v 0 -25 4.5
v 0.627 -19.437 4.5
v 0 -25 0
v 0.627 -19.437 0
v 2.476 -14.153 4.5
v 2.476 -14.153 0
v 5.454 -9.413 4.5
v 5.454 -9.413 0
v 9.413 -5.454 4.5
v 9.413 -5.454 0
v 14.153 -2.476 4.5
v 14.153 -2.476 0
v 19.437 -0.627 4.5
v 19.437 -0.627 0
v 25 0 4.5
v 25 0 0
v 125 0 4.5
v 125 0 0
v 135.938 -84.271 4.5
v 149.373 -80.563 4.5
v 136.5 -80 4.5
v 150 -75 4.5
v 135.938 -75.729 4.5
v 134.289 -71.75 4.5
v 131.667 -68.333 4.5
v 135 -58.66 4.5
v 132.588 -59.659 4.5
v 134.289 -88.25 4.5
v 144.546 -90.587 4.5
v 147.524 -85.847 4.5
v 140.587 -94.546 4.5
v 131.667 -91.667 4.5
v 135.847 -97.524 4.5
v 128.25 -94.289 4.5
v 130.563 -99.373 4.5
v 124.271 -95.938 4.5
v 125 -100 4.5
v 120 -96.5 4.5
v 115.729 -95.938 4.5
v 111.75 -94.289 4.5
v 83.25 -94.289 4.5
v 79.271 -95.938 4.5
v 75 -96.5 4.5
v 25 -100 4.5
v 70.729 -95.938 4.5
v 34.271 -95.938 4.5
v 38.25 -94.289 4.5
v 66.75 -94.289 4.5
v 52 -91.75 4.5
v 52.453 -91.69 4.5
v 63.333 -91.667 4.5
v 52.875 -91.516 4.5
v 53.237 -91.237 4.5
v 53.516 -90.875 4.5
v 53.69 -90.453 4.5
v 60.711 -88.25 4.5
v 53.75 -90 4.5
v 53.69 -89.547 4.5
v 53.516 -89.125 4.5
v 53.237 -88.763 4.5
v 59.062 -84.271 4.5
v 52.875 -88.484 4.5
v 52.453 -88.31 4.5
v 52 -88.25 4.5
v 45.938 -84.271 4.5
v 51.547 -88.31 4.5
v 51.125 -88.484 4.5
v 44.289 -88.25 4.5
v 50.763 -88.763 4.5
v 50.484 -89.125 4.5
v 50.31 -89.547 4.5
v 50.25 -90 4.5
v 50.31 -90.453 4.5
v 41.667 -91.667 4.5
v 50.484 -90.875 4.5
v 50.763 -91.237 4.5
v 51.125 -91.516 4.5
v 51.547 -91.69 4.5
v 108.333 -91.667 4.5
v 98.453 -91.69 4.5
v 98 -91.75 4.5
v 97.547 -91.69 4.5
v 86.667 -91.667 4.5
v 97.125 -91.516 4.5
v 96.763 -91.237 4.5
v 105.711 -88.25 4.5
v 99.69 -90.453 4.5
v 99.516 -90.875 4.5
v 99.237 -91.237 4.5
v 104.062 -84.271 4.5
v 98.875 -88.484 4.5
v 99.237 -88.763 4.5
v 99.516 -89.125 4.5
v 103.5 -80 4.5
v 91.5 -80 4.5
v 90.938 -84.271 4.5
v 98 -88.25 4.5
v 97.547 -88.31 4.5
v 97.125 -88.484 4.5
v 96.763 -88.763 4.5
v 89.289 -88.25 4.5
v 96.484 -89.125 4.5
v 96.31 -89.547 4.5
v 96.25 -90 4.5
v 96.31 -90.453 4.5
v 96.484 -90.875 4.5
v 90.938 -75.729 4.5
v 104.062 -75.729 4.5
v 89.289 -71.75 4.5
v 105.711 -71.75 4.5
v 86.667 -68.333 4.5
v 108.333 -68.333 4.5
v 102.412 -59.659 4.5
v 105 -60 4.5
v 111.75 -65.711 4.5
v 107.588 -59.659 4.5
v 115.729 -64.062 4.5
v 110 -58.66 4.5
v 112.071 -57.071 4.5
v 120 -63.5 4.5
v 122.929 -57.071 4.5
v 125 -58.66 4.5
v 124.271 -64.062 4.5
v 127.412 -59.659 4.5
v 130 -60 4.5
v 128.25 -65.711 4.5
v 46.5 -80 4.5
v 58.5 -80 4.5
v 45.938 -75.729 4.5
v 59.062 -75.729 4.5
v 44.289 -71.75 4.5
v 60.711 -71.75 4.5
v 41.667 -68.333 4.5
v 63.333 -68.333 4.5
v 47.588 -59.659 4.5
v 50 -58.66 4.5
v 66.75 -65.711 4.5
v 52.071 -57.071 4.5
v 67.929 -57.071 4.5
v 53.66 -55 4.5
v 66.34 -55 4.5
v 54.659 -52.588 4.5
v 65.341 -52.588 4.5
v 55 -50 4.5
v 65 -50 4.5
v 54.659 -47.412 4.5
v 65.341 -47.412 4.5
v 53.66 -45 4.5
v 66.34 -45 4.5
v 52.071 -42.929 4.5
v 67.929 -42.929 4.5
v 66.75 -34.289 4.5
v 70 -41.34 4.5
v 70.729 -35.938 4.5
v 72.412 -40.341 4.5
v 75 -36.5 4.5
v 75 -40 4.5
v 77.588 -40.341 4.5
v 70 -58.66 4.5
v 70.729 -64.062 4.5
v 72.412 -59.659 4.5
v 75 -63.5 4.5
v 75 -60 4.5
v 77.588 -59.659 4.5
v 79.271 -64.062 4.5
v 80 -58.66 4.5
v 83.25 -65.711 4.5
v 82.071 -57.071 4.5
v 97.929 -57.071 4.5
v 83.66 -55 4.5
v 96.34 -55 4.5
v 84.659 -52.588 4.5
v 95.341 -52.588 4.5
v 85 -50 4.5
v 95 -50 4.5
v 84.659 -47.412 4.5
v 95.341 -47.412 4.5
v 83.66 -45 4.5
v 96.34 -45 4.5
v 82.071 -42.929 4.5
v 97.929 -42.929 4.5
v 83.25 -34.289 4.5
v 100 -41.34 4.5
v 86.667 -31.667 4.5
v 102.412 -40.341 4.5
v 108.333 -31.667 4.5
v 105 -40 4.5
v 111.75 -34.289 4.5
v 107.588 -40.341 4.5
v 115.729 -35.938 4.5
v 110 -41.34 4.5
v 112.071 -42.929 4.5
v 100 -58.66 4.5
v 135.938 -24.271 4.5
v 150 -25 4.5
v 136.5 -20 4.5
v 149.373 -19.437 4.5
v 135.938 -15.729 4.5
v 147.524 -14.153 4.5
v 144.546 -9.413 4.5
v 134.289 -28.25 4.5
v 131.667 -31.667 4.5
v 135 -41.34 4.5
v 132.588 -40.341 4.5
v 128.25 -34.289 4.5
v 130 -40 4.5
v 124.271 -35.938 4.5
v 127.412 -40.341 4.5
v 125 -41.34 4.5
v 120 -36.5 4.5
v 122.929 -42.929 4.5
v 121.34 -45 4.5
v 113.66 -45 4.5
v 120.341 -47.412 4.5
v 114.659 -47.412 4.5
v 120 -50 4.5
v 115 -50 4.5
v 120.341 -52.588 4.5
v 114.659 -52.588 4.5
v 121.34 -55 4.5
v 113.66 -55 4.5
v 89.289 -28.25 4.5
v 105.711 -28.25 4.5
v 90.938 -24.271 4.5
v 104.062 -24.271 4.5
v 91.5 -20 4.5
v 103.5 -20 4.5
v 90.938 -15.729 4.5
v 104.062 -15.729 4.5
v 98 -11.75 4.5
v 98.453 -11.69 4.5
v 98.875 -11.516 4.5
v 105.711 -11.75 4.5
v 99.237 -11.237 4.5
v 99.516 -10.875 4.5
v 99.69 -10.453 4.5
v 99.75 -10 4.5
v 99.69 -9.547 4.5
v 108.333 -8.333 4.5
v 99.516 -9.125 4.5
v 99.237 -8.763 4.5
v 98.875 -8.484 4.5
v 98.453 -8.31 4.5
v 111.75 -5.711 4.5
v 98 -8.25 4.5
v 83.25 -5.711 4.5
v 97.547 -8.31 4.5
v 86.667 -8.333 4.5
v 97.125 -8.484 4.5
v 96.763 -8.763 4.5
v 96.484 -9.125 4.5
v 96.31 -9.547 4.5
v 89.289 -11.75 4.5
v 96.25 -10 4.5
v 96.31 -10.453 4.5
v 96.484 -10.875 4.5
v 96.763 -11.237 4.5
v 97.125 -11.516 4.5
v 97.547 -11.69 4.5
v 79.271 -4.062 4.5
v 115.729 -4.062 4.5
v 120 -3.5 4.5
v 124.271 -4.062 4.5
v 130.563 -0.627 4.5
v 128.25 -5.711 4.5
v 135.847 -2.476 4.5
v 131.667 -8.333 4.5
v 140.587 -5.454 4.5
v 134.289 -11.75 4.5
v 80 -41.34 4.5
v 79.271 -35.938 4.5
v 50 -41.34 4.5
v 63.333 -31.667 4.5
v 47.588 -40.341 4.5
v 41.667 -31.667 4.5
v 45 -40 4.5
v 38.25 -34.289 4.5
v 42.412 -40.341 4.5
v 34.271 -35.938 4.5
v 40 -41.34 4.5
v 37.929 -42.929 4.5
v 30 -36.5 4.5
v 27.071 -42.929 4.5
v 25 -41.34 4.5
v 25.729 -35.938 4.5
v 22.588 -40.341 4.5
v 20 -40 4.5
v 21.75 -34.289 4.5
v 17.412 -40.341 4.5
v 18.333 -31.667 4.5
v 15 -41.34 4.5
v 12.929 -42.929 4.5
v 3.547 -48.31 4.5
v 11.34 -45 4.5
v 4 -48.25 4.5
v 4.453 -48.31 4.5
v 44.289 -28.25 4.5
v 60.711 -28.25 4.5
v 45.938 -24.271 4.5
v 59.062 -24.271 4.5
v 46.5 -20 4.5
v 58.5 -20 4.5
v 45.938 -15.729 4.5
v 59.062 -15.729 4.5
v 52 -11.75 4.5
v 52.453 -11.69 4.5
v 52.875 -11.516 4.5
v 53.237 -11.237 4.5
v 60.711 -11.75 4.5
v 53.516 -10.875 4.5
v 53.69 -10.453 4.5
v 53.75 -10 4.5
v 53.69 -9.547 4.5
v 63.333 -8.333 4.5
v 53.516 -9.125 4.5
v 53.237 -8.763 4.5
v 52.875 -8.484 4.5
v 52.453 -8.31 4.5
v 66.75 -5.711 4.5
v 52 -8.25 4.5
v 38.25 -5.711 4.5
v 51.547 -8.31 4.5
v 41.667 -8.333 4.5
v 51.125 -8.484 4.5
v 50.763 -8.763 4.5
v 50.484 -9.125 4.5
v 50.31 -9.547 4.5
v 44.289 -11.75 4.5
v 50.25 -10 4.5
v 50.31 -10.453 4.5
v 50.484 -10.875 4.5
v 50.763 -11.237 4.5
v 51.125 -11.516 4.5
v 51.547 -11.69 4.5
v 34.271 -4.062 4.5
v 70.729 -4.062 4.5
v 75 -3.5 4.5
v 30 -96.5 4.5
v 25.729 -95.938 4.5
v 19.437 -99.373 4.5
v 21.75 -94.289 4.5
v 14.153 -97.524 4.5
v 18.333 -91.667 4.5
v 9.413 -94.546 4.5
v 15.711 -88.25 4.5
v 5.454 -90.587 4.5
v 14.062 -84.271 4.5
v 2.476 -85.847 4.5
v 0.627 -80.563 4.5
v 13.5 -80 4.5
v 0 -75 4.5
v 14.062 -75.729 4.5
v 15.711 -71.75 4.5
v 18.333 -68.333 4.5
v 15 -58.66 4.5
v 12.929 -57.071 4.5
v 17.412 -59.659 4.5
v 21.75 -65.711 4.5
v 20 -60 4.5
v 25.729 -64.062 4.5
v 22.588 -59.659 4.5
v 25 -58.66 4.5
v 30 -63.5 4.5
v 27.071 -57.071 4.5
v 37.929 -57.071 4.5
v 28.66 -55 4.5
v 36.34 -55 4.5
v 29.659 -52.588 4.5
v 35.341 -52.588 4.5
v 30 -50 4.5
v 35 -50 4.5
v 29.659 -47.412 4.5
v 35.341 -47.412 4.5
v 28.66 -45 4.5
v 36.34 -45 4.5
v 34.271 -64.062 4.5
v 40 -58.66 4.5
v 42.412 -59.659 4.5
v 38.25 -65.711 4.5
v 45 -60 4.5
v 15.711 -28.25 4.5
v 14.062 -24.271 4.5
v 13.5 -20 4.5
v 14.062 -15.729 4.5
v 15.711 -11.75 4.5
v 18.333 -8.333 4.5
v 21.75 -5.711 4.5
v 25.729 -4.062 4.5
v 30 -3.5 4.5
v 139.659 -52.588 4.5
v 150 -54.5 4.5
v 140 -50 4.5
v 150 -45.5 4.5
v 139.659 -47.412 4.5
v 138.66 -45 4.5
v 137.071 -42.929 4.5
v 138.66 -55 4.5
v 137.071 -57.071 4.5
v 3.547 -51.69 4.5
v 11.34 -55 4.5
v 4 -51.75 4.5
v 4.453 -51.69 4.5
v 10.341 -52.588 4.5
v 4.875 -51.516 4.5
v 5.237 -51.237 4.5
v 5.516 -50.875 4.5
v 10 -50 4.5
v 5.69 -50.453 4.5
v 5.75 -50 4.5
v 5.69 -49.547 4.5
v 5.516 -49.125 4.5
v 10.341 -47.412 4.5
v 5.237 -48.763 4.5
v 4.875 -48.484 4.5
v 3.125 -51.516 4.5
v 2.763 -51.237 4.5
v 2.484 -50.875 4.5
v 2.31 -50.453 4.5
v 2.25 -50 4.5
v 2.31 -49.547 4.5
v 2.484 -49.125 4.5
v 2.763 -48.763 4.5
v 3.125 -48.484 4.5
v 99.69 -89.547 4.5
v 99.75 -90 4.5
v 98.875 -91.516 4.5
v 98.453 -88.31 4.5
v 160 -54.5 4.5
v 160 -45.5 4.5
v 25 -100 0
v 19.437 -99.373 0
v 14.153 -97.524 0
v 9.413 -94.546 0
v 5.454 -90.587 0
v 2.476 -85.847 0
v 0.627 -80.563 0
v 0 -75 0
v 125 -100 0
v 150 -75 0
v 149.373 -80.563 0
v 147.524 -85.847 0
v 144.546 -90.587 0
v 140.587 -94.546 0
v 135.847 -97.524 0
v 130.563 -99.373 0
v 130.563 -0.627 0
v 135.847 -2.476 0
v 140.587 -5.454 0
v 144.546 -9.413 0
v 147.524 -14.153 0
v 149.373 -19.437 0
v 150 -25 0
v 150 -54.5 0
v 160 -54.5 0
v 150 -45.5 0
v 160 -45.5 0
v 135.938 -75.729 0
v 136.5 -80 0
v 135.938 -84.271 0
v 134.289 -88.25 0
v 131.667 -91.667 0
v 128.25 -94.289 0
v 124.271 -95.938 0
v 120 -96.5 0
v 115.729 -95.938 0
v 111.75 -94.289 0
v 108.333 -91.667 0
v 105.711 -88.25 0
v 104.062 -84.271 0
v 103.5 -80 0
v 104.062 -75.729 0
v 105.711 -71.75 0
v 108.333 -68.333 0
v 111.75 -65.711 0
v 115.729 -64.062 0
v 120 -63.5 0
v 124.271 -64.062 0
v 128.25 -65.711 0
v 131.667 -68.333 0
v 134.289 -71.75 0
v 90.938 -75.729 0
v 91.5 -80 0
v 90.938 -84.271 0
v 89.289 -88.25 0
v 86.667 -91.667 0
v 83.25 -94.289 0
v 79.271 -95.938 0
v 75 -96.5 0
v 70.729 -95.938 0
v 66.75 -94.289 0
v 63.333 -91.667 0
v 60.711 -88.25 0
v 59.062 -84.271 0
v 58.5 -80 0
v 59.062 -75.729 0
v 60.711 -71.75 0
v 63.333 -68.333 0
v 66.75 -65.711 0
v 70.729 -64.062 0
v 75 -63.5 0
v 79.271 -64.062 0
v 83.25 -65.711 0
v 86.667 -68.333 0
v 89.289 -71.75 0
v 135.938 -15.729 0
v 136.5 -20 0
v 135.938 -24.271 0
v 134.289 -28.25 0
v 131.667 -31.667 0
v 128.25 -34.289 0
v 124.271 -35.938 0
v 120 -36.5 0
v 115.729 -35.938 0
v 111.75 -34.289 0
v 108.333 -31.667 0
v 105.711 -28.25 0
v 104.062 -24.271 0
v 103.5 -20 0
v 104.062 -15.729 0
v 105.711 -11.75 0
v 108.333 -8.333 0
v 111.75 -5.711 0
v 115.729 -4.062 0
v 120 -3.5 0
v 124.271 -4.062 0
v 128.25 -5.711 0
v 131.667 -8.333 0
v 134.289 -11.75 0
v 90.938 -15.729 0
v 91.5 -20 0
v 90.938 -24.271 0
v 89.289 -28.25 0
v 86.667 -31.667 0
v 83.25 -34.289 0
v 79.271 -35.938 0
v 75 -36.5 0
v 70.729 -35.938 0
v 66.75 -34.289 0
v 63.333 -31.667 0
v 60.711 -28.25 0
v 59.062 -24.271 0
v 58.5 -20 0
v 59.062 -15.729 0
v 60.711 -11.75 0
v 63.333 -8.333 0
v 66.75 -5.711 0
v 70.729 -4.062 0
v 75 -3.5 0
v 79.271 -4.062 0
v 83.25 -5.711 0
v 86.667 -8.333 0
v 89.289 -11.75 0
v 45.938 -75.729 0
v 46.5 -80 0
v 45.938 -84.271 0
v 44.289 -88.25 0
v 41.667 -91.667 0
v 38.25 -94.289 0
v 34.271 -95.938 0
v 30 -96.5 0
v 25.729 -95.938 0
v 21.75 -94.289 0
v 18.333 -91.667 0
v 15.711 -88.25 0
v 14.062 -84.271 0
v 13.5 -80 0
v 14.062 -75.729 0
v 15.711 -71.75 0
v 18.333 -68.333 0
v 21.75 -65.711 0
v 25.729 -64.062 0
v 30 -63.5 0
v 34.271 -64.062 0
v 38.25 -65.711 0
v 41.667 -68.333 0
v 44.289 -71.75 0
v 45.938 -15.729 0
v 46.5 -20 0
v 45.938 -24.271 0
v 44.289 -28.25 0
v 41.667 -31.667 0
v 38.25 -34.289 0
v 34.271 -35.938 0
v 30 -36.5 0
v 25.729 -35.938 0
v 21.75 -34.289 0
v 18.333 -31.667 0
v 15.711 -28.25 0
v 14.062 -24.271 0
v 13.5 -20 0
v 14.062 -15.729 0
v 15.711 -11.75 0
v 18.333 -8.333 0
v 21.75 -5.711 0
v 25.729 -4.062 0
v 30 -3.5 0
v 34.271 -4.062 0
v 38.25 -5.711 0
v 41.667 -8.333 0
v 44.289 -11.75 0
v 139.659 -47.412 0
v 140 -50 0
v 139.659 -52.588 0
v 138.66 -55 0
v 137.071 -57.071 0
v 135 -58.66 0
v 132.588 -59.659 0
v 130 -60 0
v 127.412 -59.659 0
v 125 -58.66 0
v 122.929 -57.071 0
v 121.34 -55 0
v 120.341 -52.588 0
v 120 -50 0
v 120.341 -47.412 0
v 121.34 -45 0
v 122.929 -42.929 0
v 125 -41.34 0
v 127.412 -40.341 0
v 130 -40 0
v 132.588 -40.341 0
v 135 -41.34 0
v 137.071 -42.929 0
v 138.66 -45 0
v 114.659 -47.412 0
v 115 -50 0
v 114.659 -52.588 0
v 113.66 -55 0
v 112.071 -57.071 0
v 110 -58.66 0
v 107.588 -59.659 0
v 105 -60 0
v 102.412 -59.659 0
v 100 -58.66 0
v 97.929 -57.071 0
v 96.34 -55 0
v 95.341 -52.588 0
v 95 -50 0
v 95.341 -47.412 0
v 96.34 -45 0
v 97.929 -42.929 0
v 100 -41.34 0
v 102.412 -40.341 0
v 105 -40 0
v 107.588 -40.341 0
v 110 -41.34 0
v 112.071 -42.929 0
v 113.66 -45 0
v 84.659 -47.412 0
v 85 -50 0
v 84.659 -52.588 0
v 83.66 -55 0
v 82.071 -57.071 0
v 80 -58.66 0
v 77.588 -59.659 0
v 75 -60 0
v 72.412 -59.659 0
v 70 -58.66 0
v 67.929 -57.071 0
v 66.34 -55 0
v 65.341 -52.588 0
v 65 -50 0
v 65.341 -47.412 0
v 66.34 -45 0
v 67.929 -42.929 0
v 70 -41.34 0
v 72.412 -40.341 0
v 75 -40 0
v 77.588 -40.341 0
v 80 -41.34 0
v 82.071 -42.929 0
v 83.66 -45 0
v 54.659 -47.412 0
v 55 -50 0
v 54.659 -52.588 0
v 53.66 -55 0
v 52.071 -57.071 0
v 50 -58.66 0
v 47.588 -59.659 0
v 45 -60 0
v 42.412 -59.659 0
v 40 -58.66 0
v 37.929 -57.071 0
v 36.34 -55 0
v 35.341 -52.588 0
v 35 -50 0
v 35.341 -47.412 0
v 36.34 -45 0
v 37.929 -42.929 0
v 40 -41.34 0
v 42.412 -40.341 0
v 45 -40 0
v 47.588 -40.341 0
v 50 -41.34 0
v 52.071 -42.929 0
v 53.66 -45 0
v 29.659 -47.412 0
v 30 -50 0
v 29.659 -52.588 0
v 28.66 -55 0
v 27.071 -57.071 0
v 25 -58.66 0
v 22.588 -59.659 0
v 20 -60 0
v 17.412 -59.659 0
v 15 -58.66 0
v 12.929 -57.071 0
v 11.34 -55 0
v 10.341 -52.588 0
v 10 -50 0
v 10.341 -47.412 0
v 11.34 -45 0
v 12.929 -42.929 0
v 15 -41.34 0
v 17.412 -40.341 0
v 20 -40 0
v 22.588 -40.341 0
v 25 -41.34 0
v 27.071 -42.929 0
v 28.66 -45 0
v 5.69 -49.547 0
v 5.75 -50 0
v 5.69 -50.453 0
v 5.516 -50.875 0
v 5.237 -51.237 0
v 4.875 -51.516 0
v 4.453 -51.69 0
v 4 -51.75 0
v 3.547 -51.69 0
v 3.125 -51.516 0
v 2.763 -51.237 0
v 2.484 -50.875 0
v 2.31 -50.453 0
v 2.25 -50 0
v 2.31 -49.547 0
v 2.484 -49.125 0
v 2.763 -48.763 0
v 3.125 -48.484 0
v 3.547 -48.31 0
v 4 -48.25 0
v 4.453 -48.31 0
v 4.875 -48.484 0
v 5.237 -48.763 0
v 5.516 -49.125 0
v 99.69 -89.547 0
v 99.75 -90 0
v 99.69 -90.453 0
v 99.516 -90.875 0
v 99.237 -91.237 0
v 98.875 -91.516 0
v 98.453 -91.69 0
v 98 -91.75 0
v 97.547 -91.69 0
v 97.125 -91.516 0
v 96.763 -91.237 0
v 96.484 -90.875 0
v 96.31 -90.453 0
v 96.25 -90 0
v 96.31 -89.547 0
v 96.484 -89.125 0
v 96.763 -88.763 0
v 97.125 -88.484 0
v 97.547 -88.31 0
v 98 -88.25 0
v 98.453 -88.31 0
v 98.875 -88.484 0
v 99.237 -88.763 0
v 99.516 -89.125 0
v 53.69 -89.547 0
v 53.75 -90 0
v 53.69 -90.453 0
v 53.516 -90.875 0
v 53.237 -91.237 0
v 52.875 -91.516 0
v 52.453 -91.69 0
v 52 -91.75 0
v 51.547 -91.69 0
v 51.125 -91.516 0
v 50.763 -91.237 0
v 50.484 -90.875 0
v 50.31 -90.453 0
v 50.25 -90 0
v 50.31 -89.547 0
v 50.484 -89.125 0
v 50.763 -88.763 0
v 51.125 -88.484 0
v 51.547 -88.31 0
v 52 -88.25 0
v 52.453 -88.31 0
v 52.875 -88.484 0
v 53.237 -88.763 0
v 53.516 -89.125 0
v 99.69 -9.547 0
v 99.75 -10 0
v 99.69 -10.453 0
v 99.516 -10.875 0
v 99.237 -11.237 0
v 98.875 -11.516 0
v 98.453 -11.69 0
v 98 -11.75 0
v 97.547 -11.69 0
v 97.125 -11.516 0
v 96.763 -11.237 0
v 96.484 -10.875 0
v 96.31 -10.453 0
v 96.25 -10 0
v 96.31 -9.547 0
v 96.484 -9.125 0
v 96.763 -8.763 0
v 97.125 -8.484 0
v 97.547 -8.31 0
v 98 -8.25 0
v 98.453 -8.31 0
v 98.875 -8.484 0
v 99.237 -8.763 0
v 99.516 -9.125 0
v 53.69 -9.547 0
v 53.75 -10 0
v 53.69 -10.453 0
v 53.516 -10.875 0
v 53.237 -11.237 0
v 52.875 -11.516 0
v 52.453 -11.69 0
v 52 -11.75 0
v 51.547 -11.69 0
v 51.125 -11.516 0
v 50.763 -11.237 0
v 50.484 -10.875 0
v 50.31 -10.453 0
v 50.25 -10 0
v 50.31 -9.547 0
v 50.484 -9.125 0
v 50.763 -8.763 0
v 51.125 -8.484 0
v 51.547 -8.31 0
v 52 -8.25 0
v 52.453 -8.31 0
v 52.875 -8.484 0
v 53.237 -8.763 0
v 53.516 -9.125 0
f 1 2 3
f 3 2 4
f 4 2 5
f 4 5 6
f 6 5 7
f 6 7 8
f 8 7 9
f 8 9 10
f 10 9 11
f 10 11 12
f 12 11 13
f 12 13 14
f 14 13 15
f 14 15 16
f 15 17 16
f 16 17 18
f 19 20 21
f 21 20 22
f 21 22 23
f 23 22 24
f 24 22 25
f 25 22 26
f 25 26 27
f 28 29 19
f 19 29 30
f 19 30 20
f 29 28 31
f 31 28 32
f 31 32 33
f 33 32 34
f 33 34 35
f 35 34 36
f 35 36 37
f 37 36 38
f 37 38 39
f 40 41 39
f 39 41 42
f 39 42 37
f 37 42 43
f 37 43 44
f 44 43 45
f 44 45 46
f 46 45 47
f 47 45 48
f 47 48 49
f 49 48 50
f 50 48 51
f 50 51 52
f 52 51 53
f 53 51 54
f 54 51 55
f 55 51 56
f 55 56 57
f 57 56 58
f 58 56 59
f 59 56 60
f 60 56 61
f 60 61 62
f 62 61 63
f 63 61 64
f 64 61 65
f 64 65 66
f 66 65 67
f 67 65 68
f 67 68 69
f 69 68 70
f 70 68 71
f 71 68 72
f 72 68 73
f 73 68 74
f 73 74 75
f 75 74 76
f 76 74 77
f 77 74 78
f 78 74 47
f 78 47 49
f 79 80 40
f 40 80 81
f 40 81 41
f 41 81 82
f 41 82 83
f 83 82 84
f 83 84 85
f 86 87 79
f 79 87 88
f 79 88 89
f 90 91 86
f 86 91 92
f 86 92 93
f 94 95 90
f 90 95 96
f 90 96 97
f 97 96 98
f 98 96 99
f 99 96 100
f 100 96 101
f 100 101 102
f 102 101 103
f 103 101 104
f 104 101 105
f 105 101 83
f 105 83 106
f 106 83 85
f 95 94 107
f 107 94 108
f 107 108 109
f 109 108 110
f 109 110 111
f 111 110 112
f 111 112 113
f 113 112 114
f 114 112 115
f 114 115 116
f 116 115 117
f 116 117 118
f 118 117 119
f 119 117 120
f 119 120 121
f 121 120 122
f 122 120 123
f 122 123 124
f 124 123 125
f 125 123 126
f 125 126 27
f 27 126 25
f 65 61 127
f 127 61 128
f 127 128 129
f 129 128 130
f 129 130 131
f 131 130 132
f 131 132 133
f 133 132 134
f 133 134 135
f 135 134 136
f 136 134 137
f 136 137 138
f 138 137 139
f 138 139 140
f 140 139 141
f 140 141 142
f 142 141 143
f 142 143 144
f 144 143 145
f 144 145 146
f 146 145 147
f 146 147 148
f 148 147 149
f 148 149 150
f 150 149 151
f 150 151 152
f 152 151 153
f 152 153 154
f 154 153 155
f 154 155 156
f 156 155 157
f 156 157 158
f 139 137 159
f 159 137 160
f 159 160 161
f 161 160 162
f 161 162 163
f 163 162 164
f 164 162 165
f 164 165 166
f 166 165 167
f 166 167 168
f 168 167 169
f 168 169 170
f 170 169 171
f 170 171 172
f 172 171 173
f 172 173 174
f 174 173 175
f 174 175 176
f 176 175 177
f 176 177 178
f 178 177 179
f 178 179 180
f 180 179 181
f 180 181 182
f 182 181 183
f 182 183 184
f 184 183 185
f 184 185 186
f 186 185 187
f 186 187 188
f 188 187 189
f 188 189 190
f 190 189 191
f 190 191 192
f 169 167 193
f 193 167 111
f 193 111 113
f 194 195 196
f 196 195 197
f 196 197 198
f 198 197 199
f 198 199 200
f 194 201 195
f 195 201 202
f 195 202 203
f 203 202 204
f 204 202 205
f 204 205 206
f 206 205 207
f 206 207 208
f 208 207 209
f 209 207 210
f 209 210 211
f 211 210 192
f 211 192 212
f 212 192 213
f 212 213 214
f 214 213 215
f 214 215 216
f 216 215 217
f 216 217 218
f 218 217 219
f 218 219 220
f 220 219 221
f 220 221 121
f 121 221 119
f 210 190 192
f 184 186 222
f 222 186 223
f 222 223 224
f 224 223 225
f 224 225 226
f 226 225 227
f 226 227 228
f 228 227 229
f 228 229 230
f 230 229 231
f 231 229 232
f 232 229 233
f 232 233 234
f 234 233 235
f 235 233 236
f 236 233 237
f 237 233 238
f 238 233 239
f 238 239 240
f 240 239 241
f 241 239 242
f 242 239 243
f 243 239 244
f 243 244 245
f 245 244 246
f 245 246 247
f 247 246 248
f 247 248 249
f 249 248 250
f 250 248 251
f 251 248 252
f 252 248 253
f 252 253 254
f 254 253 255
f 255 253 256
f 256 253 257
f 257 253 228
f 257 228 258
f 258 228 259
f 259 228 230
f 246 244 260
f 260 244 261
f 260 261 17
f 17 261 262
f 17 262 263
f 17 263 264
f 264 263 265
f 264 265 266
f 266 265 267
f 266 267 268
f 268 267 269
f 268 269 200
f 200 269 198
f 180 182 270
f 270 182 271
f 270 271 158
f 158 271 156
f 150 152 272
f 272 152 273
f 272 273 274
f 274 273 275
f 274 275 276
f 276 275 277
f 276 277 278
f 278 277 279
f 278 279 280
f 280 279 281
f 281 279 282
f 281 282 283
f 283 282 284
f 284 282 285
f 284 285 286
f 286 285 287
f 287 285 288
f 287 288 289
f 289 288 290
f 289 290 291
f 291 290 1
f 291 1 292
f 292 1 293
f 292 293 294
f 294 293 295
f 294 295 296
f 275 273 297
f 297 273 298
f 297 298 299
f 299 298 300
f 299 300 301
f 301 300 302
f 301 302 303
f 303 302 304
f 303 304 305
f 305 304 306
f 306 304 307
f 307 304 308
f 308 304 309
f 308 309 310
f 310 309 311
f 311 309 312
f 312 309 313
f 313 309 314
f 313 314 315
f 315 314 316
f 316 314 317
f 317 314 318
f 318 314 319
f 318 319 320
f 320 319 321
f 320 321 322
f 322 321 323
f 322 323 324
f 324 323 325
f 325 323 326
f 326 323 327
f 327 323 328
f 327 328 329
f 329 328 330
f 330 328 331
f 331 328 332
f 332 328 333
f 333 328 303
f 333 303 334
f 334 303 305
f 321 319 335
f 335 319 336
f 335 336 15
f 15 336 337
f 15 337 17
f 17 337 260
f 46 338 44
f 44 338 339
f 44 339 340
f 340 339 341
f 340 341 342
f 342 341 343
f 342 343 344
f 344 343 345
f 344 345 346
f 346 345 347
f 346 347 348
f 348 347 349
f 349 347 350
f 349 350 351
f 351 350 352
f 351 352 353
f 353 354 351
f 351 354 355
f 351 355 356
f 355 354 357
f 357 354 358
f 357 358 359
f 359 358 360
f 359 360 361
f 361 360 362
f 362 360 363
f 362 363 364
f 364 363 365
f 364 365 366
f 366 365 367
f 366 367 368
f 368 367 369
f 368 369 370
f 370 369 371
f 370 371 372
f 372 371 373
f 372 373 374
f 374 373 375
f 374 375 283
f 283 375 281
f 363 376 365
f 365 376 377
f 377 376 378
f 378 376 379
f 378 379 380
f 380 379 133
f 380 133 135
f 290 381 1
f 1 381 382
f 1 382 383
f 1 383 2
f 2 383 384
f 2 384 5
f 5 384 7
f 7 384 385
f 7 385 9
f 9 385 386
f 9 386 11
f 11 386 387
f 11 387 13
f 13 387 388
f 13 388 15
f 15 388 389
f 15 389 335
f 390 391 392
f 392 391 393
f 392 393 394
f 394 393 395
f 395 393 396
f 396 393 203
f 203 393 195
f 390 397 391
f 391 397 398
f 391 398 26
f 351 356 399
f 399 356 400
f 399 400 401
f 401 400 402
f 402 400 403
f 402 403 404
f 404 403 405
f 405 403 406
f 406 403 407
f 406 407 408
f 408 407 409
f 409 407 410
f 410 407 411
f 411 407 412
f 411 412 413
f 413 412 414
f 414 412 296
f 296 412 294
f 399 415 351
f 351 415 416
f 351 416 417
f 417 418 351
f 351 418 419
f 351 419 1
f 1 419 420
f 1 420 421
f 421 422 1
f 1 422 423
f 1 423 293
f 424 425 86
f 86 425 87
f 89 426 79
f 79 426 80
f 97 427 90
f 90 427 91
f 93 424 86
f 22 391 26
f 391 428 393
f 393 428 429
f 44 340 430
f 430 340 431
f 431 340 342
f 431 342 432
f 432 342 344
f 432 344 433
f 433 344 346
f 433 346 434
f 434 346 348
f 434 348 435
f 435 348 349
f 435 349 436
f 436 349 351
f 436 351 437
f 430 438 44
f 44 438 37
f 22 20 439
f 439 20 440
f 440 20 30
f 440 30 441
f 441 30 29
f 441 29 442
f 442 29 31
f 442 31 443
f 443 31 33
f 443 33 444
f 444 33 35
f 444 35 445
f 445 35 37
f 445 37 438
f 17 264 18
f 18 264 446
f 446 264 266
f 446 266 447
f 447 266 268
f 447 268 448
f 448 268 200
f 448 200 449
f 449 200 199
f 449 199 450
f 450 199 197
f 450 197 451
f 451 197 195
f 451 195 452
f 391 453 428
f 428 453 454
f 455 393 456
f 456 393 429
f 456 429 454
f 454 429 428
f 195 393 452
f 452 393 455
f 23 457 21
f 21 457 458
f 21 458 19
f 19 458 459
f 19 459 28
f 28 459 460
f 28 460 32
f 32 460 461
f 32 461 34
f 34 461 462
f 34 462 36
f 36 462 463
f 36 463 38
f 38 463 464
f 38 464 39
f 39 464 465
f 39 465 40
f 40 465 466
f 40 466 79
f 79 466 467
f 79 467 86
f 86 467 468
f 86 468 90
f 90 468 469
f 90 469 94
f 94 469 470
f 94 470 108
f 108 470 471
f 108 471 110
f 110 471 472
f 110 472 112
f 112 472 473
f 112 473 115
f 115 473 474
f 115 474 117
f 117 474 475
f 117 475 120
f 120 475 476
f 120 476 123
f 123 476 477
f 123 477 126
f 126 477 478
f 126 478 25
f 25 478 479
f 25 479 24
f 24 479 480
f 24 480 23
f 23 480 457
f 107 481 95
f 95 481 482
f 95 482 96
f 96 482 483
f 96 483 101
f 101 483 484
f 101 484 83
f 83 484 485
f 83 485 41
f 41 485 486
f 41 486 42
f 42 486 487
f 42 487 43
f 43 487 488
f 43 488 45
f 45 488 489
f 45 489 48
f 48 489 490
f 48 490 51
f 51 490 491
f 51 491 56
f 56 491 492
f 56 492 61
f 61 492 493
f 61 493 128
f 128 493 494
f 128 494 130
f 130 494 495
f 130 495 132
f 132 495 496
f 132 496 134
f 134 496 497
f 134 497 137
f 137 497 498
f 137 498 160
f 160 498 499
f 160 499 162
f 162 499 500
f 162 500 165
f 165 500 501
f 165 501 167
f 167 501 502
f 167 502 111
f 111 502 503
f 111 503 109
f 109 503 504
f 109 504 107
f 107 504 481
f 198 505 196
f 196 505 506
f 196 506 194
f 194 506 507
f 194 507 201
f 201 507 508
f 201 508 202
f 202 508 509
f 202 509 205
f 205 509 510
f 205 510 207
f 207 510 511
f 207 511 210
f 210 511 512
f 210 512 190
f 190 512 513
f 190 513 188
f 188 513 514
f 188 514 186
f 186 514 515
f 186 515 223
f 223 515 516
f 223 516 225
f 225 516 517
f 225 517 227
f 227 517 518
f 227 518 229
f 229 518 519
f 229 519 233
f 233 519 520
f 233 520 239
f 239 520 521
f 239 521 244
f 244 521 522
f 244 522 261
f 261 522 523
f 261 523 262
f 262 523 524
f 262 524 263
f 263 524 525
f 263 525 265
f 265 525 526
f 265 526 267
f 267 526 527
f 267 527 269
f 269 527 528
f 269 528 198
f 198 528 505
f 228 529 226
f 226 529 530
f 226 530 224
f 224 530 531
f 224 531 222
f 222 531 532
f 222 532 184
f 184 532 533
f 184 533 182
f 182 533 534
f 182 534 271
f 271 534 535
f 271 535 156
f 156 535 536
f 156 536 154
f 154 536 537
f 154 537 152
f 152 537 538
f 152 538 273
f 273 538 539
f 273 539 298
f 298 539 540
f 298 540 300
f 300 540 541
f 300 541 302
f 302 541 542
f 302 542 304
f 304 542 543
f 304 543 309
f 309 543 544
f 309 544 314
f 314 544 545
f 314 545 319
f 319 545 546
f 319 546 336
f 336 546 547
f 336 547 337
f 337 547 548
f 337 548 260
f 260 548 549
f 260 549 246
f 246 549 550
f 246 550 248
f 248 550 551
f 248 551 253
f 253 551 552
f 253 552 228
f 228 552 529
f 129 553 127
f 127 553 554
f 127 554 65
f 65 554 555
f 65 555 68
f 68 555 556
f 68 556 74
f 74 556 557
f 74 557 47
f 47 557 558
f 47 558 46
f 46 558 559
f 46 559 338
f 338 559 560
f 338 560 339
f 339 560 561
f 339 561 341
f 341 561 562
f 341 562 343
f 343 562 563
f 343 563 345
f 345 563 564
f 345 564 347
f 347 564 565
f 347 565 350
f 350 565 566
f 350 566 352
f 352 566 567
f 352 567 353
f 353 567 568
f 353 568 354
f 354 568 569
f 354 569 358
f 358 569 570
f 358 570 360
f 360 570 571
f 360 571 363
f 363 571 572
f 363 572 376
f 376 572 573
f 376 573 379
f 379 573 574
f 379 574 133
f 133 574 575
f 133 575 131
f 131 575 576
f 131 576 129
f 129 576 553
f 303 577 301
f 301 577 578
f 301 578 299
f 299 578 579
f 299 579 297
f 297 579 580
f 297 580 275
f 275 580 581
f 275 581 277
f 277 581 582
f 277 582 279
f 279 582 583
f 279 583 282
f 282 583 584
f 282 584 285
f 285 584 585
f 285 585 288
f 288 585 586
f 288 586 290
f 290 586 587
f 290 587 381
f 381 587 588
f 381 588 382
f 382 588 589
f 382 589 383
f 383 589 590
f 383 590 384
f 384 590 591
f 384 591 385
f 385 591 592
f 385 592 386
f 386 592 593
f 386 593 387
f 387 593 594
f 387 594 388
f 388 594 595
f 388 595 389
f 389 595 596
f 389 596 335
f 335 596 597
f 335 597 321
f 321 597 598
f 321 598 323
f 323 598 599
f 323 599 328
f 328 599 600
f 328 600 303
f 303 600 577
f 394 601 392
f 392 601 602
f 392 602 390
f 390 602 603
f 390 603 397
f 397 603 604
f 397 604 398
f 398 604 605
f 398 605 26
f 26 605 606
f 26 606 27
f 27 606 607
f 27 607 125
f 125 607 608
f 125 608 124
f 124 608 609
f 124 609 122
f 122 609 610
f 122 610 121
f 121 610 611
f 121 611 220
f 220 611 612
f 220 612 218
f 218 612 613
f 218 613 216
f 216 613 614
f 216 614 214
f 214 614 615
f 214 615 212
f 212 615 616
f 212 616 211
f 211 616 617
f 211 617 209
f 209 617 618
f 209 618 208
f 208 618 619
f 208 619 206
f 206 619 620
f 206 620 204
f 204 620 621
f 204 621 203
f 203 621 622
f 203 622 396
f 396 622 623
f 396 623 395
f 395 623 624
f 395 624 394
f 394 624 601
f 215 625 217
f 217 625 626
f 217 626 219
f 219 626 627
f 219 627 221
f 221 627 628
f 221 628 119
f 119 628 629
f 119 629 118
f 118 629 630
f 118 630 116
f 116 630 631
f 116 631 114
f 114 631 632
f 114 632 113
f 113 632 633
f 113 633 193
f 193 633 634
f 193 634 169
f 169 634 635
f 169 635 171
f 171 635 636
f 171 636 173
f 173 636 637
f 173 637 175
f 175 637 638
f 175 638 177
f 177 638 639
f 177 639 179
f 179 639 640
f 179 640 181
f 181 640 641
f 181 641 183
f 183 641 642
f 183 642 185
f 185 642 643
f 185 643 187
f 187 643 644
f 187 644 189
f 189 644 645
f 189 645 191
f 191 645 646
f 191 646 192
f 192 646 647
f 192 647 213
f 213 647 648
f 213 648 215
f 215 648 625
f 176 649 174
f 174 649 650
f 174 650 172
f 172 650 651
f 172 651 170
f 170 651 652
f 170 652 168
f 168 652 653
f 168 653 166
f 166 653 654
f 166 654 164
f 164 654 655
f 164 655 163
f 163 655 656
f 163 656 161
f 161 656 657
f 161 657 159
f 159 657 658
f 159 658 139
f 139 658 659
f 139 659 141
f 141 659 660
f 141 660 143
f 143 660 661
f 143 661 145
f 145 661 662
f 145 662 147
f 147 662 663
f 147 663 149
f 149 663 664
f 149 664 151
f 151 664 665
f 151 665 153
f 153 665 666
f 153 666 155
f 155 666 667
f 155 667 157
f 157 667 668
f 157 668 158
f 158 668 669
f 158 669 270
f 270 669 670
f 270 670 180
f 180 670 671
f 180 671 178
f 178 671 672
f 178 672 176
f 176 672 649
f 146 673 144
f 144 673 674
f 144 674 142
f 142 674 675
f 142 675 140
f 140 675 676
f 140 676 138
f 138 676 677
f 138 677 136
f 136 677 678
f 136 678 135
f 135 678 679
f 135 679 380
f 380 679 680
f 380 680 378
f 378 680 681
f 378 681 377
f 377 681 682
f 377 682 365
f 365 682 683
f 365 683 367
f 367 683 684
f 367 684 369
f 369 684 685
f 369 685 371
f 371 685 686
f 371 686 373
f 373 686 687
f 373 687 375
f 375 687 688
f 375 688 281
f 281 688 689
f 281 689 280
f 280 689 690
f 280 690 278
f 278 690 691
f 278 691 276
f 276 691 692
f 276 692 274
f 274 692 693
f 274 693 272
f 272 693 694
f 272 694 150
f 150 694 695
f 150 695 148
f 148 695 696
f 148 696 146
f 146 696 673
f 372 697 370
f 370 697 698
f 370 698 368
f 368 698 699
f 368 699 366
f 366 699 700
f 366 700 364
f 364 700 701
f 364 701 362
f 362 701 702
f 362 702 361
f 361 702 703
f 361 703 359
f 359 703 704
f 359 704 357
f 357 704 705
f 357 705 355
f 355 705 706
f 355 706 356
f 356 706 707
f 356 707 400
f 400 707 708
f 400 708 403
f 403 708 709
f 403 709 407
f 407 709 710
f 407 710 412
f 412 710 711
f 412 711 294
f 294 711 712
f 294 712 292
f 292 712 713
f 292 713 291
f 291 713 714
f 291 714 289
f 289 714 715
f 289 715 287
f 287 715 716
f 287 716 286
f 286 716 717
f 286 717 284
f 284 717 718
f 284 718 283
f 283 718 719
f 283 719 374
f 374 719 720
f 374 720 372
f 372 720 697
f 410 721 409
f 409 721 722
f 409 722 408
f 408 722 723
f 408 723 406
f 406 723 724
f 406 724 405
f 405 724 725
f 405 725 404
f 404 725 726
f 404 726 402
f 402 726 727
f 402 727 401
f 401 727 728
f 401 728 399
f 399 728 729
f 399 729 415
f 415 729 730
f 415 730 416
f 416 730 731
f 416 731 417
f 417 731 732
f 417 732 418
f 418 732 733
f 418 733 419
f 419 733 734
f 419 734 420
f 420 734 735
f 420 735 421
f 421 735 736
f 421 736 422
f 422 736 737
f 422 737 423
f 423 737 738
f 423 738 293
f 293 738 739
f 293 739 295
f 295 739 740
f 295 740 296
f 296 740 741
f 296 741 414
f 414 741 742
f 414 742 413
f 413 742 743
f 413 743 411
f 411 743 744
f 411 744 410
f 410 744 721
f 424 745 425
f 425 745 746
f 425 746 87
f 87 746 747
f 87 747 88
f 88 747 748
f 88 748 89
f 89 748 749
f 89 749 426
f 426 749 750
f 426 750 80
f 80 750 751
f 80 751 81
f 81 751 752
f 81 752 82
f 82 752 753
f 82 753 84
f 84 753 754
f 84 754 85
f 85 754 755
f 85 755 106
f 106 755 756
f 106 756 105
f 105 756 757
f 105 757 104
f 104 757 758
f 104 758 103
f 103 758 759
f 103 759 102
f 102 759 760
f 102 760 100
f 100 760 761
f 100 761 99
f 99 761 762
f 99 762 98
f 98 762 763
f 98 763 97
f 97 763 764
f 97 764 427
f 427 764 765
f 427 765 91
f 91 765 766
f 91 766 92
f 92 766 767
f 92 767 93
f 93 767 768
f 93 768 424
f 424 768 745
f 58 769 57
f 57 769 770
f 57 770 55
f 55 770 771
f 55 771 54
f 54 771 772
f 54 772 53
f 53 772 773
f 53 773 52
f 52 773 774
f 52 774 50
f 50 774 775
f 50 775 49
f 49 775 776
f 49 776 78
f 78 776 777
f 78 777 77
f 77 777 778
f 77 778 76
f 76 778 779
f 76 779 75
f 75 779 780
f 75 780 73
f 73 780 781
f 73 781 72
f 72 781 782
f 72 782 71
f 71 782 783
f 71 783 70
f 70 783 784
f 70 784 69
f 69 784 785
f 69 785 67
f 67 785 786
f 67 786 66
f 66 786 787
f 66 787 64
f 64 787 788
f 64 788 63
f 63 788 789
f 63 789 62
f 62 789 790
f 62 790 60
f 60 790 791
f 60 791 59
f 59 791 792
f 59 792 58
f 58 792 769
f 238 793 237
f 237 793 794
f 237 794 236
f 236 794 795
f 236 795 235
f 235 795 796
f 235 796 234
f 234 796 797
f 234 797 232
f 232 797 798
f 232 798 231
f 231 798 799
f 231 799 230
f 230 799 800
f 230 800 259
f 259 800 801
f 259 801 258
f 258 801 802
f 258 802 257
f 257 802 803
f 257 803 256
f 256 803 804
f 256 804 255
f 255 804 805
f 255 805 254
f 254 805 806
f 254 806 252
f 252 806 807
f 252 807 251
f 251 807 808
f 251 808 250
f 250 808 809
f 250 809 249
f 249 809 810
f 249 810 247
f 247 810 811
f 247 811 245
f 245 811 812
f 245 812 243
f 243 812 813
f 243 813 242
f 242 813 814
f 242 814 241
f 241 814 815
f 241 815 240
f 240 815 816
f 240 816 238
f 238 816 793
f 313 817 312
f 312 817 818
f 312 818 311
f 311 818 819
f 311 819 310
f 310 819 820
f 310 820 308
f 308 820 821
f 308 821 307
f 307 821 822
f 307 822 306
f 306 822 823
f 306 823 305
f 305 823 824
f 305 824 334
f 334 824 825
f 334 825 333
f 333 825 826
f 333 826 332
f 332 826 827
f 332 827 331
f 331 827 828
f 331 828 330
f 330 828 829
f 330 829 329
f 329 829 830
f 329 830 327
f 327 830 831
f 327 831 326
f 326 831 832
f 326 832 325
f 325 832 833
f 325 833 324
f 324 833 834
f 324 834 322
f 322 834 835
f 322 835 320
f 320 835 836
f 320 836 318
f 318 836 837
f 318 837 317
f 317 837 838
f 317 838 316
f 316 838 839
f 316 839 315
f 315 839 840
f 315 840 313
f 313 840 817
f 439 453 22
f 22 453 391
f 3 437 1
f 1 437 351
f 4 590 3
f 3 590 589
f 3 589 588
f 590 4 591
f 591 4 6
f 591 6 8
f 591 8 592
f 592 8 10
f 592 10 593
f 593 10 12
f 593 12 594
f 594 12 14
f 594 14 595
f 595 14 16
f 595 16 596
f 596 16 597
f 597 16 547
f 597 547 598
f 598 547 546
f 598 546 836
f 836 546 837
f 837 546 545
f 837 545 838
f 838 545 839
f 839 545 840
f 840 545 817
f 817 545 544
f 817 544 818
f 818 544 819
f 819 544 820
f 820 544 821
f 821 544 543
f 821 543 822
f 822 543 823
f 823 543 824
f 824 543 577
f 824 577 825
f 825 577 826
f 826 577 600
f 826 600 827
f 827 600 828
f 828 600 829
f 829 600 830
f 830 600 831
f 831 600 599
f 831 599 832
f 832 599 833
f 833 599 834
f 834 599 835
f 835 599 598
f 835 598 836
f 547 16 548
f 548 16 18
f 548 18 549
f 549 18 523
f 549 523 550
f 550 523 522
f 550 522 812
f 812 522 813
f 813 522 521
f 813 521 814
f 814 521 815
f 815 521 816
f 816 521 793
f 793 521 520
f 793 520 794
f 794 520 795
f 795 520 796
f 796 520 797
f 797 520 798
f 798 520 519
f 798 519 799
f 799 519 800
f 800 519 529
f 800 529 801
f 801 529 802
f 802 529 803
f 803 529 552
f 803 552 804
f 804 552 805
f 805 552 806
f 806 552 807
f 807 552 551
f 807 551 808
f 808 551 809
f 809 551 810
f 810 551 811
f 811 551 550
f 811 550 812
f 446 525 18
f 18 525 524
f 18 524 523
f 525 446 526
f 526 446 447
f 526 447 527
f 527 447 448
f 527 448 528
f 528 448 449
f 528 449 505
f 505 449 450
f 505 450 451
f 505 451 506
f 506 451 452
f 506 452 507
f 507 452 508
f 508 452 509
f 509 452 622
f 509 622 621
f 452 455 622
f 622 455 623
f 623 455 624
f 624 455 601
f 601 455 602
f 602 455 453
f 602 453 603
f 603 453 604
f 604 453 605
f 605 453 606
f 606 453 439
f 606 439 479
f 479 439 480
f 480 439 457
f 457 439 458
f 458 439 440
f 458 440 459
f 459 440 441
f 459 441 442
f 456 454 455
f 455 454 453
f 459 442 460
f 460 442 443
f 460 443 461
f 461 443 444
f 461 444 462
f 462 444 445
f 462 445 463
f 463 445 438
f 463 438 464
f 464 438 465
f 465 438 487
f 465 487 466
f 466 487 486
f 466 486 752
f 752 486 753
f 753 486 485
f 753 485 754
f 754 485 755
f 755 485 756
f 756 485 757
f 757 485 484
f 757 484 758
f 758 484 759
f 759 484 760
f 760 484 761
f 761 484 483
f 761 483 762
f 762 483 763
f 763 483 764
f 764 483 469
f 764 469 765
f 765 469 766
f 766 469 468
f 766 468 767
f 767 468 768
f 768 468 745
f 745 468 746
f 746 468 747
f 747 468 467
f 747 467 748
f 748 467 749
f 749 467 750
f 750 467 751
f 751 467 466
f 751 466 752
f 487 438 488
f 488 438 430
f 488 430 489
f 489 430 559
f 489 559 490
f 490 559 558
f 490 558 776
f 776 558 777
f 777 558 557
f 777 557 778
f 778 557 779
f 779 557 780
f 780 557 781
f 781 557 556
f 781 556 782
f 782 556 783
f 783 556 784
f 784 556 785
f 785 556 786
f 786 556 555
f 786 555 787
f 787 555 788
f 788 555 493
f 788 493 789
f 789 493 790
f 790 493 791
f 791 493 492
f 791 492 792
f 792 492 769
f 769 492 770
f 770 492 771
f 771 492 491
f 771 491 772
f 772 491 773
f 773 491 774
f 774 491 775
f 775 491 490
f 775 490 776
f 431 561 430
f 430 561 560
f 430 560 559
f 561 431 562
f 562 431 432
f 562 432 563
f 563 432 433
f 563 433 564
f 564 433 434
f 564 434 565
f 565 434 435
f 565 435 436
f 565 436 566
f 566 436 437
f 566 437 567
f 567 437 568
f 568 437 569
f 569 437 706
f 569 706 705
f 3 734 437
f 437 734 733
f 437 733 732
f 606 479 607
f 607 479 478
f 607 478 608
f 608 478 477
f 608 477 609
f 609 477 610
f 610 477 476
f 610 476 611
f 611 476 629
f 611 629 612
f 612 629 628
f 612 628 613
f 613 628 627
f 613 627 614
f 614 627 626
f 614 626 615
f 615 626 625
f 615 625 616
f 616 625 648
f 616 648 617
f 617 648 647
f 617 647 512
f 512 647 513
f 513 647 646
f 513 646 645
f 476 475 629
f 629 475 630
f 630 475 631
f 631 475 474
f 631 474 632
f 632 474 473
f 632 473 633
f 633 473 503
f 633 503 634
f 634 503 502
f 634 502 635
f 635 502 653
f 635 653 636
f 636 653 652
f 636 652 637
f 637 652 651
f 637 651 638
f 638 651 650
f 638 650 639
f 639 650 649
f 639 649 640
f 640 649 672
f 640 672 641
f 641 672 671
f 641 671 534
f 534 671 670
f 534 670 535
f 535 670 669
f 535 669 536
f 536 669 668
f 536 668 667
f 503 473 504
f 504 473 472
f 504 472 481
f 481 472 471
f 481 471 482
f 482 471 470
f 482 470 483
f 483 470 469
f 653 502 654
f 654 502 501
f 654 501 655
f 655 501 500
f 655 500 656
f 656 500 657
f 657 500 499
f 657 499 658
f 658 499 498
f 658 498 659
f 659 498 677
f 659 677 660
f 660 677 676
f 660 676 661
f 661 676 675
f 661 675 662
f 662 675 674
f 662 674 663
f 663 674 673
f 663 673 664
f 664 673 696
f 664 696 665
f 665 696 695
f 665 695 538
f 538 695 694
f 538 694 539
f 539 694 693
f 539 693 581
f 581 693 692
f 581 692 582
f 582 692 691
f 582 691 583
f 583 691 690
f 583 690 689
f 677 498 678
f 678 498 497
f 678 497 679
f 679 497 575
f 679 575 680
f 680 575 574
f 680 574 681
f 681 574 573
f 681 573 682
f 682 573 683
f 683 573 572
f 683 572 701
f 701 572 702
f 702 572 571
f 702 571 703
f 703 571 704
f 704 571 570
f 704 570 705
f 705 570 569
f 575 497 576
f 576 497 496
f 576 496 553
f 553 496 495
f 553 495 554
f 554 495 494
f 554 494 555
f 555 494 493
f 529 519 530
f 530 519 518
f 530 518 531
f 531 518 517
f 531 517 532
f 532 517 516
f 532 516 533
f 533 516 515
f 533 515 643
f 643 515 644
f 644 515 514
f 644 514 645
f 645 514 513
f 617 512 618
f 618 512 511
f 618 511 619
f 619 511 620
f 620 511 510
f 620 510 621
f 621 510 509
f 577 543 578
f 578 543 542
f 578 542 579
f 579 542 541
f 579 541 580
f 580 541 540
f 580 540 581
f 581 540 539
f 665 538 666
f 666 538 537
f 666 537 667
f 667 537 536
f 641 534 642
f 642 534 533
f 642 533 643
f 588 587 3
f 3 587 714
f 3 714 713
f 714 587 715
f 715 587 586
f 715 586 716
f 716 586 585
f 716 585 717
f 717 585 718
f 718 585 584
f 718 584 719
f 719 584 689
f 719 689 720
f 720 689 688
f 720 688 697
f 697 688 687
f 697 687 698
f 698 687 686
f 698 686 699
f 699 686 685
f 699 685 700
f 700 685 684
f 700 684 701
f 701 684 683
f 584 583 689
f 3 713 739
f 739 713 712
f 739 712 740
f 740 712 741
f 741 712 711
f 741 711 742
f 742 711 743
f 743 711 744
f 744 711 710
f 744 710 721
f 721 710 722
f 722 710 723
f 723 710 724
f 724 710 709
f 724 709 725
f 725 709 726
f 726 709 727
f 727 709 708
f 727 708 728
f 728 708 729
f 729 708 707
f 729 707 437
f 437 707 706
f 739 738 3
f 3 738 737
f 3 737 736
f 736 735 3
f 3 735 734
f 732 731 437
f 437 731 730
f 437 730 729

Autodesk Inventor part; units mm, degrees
ref_plane "YZ Plane" through (0, 0, 0) normal (1, 0, 0) x (0, 1, 0)
ref_plane "XZ Plane" through (0, 0, 0) normal (0, 1, 0) x (-1, 0, 0)
ref_plane "XY Plane" through (0, 0, 0) normal (0, 0, 1) x (1, 0, 0)
sketch "Sketch1" plane through (0, 0, 0) normal (0, 0, 1) x (1, 0, 0)
  line L0 (0, 0) -> (150, 0)
  line L1 (150, 0) -> (150, -100)
  line L2 (150, -100) -> (0, -100)
  line L3 (0, -100) -> (0, 0)
  circle A0 centre (30, -20) radius 16.5
  circle A1 centre (30, -80) radius 16.5
  circle A2 centre (75, -20) radius 16.5
  circle A3 centre (120, -20) radius 16.5
  circle A4 centre (75, -80) radius 16.5
  circle A5 centre (120, -80) radius 16.5
  circle A6 centre (20, -50) radius 10
  circle A7 centre (45, -50) radius 10
  circle A8 centre (75, -50) radius 10
  circle A9 centre (105, -50) radius 10
  circle A10 centre (130, -50) radius 10
  circle A11 centre (52, -10) radius 1.75
  circle A12 centre (98, -10) radius 1.75
  circle A13 centre (52, -90) radius 1.75
  circle A14 centre (98, -90) radius 1.75
  circle A15 centre (4, -50) radius 1.75
  dimension "d0" = 150
  dimension "d1" = 100
  dimension "d2" = 33
  dimension "d3" = 33
  dimension "d5" = 33
  dimension "d6" = 33
  dimension "d8" = 33
  dimension "d9" = 33
  dimension "d10" = 20
  dimension "d11" = 20
  dimension "d12" = 20
  dimension "d13" = 30
  dimension "d14" = 30
  dimension "d15" = 75
  dimension "d16" = 30
  dimension "d17" = 75
  dimension "d18" = 30
  dimension "d19" = 20
  dimension "d20" = 20
  dimension "d21" = 20
  dimension "d22" = 20
  dimension "d23" = 20
  dimension "d25" = 20
  dimension "d26" = 20
  dimension "d27" = 20
  dimension "d28" = 20
  dimension "d29" = 20
  dimension "d30" = 25
  dimension "d31" = 25
  dimension "d32" = 50
  dimension "d33" = 50
  dimension "d34" = 50
  dimension "d35" = 50
  dimension "d36" = 50
  dimension "d37" = 75
  dimension "d56" = 3.5
  dimension "d57" = 3.5
  dimension "d58" = 3.5
  dimension "d59" = 3.5
  dimension "d60" = 10
  dimension "d61" = 10
  dimension "d62" = 10
  dimension "d63" = 10
  dimension "d64" = 52
  dimension "d65" = 52
  dimension "d66" = 52
  dimension "d67" = 52
  dimension "d74" = 3.5
  dimension "d75" = 4
  dimension "d76" = 50
extrude "Extrusion5" add sketch "Sketch1" along normal blind 4.5
sketch "Sketch4" plane through (150, -100, 0) normal (1, 0, 0) x (0, 0, -1)
  line L0 (0, 0) -> (-4.5, 0) projected
  line L1 (0, 100) -> (-4.5, 100)
  line L2 (-4.5, 100) -> (-4.5, 0)
  line L3 (-4.5, 0) -> (0, 0)
  line L4 (0, 0) -> (0, 100)
  line L5 (-4.5, 40) -> (-4.5, 60) projected
  line L6 (-4.5, 45.5) -> (0, 45.5)
  line L7 (0, 45.5) -> (0, 54.5)
  line L8 (0, 54.5) -> (-4.5, 54.5)
  line L9 (-4.5, 54.5) -> (-4.5, 45.5)
  dimension "d79" = 9
  dimension "d80" = 45.5
extrude "Extrusion6" add sketch "Sketch4" along normal blind 10 contours L6 L2 L8 L4
fillet "Fillet9" radius 25 1 edges at (150, 0, 2.25)
fillet "Fillet10" radius 25 1 edges at (150, -100, 2.25)
fillet "Fillet11" radius 25 1 edges at (0, -100, 2.25)
fillet "Fillet12" radius 25 1 edges at (0, 0, 2.25)
properties part number "Bandeja de tubos"
